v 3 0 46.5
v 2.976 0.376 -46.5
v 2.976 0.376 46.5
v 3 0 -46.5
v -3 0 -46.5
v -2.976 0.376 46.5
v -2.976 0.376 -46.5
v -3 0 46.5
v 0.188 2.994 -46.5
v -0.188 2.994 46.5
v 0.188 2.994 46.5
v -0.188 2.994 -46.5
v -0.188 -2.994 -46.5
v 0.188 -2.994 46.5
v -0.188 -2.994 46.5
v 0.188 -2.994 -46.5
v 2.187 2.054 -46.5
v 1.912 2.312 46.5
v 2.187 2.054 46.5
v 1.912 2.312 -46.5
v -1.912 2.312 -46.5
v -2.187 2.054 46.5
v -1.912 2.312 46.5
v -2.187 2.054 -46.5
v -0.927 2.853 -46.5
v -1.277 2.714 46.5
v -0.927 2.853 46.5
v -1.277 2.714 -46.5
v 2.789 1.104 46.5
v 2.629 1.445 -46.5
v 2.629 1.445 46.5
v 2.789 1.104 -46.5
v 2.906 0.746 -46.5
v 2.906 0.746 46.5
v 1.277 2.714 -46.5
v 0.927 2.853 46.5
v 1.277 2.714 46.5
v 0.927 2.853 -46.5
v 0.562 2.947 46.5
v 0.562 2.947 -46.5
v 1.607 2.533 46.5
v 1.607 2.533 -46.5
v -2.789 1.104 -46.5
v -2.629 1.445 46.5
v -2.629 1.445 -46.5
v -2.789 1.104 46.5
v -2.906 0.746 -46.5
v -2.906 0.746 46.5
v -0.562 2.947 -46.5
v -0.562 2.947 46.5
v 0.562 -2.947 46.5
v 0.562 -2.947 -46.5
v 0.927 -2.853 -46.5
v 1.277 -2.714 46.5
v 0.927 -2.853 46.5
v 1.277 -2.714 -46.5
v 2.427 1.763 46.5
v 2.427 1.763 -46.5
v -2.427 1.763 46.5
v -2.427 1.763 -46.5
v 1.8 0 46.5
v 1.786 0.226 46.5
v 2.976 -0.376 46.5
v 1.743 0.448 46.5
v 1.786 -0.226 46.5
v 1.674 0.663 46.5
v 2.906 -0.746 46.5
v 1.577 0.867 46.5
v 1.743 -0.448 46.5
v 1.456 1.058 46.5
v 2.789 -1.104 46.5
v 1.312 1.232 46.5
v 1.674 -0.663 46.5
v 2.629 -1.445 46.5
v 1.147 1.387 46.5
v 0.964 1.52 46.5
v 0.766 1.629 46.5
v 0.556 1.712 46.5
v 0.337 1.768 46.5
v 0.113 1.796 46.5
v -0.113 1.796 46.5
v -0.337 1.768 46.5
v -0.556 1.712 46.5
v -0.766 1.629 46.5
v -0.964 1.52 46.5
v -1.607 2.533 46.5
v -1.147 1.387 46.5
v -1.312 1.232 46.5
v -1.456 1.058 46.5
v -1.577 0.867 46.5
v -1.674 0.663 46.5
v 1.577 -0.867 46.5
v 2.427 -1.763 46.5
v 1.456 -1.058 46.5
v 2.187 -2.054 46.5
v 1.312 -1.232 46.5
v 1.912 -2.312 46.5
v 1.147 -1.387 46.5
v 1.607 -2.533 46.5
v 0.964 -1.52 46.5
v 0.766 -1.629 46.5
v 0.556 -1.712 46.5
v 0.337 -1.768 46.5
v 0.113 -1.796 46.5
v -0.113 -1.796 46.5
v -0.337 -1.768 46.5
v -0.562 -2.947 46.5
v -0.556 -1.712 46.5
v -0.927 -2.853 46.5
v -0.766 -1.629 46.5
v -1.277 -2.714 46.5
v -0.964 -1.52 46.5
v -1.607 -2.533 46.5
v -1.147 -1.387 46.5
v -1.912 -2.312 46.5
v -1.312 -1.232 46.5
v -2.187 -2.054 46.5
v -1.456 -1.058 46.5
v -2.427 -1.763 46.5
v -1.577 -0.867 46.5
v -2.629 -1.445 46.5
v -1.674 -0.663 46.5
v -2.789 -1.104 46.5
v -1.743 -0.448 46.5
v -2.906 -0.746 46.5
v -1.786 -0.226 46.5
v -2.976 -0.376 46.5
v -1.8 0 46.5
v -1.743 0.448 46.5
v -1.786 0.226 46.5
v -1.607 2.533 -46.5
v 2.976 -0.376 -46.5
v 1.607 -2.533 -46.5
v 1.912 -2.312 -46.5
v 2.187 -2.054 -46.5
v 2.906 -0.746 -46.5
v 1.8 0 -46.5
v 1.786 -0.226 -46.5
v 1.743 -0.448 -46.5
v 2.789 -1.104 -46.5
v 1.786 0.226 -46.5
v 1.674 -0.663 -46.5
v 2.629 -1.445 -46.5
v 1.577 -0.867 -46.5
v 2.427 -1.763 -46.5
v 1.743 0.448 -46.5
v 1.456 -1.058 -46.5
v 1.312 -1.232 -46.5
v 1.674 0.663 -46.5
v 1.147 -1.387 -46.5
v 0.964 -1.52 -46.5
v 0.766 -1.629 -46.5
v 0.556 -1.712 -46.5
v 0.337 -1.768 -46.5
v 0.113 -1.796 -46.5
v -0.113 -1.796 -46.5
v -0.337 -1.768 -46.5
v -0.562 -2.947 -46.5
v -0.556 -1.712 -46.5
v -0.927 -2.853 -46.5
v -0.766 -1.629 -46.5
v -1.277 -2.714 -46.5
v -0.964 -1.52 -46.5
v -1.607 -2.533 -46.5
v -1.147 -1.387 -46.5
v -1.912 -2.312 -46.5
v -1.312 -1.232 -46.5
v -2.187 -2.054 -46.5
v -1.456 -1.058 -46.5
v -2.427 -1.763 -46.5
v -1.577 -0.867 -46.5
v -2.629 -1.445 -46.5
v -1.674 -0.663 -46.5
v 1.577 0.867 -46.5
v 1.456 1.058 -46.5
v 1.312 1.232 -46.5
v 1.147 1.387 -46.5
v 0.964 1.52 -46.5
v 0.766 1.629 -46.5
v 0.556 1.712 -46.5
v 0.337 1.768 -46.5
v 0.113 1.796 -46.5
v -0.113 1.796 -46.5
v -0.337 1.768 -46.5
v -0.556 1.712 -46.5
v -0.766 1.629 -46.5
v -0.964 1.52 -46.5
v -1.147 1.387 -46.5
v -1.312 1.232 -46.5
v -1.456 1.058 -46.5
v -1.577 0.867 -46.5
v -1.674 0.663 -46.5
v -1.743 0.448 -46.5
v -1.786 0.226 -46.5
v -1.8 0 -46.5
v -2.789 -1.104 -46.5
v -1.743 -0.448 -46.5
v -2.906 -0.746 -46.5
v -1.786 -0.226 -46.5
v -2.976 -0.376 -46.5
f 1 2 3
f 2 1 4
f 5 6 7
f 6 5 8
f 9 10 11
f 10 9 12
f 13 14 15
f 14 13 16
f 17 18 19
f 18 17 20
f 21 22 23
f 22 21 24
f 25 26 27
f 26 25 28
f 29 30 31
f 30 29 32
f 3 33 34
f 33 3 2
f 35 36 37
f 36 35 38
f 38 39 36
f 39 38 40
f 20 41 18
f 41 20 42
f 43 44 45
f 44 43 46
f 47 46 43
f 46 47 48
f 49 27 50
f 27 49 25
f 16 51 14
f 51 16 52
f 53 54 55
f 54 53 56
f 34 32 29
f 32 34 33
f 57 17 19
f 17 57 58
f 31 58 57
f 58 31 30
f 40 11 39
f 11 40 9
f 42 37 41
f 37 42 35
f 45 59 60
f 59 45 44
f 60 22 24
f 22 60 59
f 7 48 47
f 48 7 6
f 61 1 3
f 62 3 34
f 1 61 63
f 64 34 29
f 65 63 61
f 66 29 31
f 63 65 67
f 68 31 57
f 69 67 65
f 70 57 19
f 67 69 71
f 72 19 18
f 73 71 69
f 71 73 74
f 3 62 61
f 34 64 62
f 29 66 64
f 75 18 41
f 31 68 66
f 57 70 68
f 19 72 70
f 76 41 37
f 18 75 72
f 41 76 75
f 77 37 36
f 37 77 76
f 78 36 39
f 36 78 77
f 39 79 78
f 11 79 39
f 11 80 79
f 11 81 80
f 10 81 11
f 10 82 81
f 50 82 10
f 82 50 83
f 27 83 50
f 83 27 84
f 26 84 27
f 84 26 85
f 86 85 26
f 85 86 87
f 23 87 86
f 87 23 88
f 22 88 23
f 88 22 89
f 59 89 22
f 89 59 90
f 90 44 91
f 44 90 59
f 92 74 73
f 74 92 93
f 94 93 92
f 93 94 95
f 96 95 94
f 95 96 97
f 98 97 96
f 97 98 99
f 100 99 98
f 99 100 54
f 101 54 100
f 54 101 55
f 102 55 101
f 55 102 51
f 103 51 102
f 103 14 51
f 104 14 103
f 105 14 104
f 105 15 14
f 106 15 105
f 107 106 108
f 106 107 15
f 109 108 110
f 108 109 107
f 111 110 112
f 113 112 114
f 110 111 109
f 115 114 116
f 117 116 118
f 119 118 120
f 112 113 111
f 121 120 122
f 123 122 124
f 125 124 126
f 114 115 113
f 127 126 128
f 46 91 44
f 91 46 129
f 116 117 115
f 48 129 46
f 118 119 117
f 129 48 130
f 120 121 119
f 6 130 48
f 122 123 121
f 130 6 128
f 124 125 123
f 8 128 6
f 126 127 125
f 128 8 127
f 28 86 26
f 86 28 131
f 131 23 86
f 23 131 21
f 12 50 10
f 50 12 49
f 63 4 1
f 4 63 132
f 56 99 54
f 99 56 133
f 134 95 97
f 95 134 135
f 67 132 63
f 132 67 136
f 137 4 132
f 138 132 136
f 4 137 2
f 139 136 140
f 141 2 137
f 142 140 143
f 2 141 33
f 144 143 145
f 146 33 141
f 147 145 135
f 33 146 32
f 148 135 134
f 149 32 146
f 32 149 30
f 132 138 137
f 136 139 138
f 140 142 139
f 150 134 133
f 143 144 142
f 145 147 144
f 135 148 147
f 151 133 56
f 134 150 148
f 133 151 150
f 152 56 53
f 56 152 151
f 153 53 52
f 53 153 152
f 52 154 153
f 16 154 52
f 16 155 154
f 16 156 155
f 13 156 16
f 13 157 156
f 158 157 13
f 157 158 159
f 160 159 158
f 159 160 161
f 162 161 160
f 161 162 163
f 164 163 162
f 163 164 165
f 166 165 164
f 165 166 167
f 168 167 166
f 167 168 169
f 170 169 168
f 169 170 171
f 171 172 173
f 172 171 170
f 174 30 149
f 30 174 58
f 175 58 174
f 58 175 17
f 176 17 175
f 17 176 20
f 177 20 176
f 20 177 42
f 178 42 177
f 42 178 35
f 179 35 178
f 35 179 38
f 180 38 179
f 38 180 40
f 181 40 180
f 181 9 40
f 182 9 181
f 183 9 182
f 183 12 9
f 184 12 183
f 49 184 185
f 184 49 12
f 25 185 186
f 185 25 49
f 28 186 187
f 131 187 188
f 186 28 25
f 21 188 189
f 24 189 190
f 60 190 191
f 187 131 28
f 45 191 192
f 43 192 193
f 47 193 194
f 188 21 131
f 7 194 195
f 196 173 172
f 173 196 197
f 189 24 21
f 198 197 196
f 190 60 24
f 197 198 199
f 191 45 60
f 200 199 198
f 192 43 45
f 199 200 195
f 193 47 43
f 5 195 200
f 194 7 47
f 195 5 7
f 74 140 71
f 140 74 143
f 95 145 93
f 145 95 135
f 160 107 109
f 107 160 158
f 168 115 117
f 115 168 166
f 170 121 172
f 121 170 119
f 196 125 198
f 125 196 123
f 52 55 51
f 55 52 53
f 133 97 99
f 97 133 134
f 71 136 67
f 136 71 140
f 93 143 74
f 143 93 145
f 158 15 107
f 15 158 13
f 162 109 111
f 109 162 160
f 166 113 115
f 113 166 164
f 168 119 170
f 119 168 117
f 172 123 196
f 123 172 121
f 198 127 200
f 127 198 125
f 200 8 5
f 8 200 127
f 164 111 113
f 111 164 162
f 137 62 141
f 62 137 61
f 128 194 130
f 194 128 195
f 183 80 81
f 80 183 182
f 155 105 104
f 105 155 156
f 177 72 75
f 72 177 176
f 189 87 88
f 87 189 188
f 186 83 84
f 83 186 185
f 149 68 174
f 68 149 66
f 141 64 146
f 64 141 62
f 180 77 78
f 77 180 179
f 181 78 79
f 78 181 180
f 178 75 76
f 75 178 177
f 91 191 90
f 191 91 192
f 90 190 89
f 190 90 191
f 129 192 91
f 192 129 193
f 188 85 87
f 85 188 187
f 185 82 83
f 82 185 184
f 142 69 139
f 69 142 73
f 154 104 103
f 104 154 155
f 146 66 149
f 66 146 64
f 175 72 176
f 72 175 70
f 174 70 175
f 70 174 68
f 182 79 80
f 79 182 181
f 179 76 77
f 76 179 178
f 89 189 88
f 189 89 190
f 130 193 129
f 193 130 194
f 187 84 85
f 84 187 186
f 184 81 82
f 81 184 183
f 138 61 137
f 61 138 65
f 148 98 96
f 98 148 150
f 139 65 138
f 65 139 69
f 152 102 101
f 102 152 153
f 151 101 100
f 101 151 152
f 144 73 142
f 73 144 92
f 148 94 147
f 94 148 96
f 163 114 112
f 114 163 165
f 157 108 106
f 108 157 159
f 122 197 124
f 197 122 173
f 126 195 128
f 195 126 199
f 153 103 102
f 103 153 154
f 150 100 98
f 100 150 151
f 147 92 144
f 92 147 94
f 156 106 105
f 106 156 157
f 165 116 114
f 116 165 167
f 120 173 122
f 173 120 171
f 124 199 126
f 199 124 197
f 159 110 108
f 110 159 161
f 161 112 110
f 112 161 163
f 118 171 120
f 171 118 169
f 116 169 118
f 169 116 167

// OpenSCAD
$fn = 50;


difference() {
	union() {
		translate(v = [0, 0, -46.5000000000]) {
			cylinder(h = 93, r = 3.0000000000);
		}
	}
	union() {
		translate(v = [0, 0, -100.0000000000]) {
			cylinder(h = 200, r = 1.8000000000);
		}
	}
}
